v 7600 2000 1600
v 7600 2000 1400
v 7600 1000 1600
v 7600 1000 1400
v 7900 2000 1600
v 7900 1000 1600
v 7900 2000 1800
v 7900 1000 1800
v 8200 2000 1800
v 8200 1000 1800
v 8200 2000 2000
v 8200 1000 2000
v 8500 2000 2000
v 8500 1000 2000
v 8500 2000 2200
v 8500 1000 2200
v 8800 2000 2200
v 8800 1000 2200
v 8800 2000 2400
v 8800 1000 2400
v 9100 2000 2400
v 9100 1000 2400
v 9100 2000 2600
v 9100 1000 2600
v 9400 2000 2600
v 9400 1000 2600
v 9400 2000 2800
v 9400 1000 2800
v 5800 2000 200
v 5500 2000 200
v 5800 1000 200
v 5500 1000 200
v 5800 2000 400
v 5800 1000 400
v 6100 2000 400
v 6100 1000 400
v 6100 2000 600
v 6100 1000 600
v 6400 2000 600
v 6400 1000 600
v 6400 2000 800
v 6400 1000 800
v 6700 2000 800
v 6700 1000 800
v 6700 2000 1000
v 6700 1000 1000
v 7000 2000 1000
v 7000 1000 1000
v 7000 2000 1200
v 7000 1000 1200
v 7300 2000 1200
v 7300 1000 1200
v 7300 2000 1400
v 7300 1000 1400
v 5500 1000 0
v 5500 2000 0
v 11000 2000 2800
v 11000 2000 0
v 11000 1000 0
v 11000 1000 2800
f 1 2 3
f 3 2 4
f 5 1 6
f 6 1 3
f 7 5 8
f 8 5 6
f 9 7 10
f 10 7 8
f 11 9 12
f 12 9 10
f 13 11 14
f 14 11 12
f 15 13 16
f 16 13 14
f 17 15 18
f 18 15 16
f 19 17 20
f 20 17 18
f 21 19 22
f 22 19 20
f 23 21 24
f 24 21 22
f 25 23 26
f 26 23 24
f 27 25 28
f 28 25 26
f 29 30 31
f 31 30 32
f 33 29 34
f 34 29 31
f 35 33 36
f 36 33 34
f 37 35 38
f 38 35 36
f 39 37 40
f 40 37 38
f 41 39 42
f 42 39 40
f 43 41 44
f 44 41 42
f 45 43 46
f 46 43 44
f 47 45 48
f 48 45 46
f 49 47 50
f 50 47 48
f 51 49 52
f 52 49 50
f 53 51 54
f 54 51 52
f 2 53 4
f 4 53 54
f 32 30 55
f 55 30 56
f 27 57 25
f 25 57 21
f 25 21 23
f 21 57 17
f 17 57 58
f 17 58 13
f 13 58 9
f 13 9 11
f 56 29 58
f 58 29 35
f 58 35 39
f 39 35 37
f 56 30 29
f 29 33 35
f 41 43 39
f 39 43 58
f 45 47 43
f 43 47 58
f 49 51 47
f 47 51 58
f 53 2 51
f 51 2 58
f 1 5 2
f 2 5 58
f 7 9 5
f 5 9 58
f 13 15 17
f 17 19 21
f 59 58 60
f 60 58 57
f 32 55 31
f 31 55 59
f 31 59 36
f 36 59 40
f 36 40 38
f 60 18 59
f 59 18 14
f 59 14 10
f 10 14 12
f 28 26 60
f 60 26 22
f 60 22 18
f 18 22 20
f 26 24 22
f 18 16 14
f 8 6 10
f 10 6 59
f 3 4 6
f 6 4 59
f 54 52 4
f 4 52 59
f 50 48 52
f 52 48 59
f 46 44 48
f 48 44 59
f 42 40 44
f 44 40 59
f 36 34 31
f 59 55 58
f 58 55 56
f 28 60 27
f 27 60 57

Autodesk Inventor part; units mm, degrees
ref_plane "YZ Plane" through (0, 0, 0) normal (1, 0, 0) x (0, 1, 0)
ref_plane "XZ Plane" through (0, 0, 0) normal (0, 1, 0) x (-1, 0, 0)
ref_plane "XY Plane" through (0, 0, 0) normal (0, 0, 1) x (1, 0, 0)
sketch "スケッチ1" plane through (0, 0, 0) normal (0, 0, 1) x (1, 0, 0)
  line L0 (5500, 2000) -> (11000, 2000)
  line L1 (11000, 2000) -> (11000, 1000)
  line L2 (11000, 1000) -> (5500, 1000)
  line L3 (5500, 1000) -> (5500, 2000)
  point P0 (0, 0)
  dimension "d13" = 5500
  dimension "d23" = 1000
  dimension "d24" = 5500
  dimension "d28" = 1000
extrude "押し出し1" add sketch "スケッチ1" along normal blind 2800
sketch "スケッチ6" plane through (5500, 1000, 0) normal (0, -1, 0) x (1, 0, 0)
  line L0 (0, 0) -> (0, 2800) projected
  line L1 (0, 200) -> (300, 200)
  line L2 (300, 200) -> (300, 400)
  line L3 (300, 400) -> (600, 400)
  line L4 (600, 400) -> (600, 600)
  line L5 (600, 600) -> (900, 600)
  line L6 (900, 600) -> (900, 800)
  line L7 (900, 800) -> (1200, 800)
  line L8 (1200, 800) -> (1200, 1000)
  line L9 (1200, 1000) -> (1500, 1000)
  line L10 (1500, 1000) -> (1500, 1200)
  line L11 (1500, 1200) -> (1800, 1200)
  line L12 (0, 0) -> (5500, 0) projected
  line L13 (1800, 1200) -> (1800, 1400)
  line L14 (1800, 1400) -> (2100, 1400)
  line L15 (2100, 1400) -> (2100, 1600)
  line L16 (2100, 1600) -> (2400, 1600)
  line L17 (2400, 1600) -> (2400, 1800)
  line L18 (2400, 1800) -> (2700, 1800)
  line L19 (2700, 1800) -> (2700, 2000)
  line L20 (2700, 2000) -> (3000, 2000)
  line L21 (3000, 2000) -> (3000, 2200)
  line L22 (3000, 2200) -> (3300, 2200)
  line L23 (3300, 2200) -> (3300, 2400)
  line L24 (3300, 2400) -> (3600, 2400)
  line L25 (3600, 2400) -> (3600, 2600)
  line L26 (3600, 2600) -> (3900, 2600)
  line L27 (3900, 2600) -> (3900, 2800)
  line L28 (0, 2800) -> (5500, 2800) projected
  point P0 (-5500, 0)
  dimension "d29" = 300
  dimension "d30" = 300
  dimension "d31" = 300
  dimension "d32" = 300
  dimension "d33" = 300
  dimension "d34" = 300
  dimension "d35" = 200
  dimension "d36" = 200
  dimension "d37" = 200
  dimension "d38" = 200
  dimension "d39" = 200
  dimension "d40" = 200
  dimension "d41" = 300
  dimension "d42" = 300
  dimension "d43" = 300
  dimension "d44" = 300
  dimension "d45" = 300
  dimension "d46" = 300
  dimension "d47" = 200
  dimension "d48" = 200
  dimension "d49" = 200
  dimension "d50" = 200
  dimension "d51" = 200
  dimension "d52" = 200
  dimension "d53" = 300
  dimension "d54" = 200
extrude "押し出し6" cut sketch "スケッチ6" against normal through all
properties part number "Stairs"
